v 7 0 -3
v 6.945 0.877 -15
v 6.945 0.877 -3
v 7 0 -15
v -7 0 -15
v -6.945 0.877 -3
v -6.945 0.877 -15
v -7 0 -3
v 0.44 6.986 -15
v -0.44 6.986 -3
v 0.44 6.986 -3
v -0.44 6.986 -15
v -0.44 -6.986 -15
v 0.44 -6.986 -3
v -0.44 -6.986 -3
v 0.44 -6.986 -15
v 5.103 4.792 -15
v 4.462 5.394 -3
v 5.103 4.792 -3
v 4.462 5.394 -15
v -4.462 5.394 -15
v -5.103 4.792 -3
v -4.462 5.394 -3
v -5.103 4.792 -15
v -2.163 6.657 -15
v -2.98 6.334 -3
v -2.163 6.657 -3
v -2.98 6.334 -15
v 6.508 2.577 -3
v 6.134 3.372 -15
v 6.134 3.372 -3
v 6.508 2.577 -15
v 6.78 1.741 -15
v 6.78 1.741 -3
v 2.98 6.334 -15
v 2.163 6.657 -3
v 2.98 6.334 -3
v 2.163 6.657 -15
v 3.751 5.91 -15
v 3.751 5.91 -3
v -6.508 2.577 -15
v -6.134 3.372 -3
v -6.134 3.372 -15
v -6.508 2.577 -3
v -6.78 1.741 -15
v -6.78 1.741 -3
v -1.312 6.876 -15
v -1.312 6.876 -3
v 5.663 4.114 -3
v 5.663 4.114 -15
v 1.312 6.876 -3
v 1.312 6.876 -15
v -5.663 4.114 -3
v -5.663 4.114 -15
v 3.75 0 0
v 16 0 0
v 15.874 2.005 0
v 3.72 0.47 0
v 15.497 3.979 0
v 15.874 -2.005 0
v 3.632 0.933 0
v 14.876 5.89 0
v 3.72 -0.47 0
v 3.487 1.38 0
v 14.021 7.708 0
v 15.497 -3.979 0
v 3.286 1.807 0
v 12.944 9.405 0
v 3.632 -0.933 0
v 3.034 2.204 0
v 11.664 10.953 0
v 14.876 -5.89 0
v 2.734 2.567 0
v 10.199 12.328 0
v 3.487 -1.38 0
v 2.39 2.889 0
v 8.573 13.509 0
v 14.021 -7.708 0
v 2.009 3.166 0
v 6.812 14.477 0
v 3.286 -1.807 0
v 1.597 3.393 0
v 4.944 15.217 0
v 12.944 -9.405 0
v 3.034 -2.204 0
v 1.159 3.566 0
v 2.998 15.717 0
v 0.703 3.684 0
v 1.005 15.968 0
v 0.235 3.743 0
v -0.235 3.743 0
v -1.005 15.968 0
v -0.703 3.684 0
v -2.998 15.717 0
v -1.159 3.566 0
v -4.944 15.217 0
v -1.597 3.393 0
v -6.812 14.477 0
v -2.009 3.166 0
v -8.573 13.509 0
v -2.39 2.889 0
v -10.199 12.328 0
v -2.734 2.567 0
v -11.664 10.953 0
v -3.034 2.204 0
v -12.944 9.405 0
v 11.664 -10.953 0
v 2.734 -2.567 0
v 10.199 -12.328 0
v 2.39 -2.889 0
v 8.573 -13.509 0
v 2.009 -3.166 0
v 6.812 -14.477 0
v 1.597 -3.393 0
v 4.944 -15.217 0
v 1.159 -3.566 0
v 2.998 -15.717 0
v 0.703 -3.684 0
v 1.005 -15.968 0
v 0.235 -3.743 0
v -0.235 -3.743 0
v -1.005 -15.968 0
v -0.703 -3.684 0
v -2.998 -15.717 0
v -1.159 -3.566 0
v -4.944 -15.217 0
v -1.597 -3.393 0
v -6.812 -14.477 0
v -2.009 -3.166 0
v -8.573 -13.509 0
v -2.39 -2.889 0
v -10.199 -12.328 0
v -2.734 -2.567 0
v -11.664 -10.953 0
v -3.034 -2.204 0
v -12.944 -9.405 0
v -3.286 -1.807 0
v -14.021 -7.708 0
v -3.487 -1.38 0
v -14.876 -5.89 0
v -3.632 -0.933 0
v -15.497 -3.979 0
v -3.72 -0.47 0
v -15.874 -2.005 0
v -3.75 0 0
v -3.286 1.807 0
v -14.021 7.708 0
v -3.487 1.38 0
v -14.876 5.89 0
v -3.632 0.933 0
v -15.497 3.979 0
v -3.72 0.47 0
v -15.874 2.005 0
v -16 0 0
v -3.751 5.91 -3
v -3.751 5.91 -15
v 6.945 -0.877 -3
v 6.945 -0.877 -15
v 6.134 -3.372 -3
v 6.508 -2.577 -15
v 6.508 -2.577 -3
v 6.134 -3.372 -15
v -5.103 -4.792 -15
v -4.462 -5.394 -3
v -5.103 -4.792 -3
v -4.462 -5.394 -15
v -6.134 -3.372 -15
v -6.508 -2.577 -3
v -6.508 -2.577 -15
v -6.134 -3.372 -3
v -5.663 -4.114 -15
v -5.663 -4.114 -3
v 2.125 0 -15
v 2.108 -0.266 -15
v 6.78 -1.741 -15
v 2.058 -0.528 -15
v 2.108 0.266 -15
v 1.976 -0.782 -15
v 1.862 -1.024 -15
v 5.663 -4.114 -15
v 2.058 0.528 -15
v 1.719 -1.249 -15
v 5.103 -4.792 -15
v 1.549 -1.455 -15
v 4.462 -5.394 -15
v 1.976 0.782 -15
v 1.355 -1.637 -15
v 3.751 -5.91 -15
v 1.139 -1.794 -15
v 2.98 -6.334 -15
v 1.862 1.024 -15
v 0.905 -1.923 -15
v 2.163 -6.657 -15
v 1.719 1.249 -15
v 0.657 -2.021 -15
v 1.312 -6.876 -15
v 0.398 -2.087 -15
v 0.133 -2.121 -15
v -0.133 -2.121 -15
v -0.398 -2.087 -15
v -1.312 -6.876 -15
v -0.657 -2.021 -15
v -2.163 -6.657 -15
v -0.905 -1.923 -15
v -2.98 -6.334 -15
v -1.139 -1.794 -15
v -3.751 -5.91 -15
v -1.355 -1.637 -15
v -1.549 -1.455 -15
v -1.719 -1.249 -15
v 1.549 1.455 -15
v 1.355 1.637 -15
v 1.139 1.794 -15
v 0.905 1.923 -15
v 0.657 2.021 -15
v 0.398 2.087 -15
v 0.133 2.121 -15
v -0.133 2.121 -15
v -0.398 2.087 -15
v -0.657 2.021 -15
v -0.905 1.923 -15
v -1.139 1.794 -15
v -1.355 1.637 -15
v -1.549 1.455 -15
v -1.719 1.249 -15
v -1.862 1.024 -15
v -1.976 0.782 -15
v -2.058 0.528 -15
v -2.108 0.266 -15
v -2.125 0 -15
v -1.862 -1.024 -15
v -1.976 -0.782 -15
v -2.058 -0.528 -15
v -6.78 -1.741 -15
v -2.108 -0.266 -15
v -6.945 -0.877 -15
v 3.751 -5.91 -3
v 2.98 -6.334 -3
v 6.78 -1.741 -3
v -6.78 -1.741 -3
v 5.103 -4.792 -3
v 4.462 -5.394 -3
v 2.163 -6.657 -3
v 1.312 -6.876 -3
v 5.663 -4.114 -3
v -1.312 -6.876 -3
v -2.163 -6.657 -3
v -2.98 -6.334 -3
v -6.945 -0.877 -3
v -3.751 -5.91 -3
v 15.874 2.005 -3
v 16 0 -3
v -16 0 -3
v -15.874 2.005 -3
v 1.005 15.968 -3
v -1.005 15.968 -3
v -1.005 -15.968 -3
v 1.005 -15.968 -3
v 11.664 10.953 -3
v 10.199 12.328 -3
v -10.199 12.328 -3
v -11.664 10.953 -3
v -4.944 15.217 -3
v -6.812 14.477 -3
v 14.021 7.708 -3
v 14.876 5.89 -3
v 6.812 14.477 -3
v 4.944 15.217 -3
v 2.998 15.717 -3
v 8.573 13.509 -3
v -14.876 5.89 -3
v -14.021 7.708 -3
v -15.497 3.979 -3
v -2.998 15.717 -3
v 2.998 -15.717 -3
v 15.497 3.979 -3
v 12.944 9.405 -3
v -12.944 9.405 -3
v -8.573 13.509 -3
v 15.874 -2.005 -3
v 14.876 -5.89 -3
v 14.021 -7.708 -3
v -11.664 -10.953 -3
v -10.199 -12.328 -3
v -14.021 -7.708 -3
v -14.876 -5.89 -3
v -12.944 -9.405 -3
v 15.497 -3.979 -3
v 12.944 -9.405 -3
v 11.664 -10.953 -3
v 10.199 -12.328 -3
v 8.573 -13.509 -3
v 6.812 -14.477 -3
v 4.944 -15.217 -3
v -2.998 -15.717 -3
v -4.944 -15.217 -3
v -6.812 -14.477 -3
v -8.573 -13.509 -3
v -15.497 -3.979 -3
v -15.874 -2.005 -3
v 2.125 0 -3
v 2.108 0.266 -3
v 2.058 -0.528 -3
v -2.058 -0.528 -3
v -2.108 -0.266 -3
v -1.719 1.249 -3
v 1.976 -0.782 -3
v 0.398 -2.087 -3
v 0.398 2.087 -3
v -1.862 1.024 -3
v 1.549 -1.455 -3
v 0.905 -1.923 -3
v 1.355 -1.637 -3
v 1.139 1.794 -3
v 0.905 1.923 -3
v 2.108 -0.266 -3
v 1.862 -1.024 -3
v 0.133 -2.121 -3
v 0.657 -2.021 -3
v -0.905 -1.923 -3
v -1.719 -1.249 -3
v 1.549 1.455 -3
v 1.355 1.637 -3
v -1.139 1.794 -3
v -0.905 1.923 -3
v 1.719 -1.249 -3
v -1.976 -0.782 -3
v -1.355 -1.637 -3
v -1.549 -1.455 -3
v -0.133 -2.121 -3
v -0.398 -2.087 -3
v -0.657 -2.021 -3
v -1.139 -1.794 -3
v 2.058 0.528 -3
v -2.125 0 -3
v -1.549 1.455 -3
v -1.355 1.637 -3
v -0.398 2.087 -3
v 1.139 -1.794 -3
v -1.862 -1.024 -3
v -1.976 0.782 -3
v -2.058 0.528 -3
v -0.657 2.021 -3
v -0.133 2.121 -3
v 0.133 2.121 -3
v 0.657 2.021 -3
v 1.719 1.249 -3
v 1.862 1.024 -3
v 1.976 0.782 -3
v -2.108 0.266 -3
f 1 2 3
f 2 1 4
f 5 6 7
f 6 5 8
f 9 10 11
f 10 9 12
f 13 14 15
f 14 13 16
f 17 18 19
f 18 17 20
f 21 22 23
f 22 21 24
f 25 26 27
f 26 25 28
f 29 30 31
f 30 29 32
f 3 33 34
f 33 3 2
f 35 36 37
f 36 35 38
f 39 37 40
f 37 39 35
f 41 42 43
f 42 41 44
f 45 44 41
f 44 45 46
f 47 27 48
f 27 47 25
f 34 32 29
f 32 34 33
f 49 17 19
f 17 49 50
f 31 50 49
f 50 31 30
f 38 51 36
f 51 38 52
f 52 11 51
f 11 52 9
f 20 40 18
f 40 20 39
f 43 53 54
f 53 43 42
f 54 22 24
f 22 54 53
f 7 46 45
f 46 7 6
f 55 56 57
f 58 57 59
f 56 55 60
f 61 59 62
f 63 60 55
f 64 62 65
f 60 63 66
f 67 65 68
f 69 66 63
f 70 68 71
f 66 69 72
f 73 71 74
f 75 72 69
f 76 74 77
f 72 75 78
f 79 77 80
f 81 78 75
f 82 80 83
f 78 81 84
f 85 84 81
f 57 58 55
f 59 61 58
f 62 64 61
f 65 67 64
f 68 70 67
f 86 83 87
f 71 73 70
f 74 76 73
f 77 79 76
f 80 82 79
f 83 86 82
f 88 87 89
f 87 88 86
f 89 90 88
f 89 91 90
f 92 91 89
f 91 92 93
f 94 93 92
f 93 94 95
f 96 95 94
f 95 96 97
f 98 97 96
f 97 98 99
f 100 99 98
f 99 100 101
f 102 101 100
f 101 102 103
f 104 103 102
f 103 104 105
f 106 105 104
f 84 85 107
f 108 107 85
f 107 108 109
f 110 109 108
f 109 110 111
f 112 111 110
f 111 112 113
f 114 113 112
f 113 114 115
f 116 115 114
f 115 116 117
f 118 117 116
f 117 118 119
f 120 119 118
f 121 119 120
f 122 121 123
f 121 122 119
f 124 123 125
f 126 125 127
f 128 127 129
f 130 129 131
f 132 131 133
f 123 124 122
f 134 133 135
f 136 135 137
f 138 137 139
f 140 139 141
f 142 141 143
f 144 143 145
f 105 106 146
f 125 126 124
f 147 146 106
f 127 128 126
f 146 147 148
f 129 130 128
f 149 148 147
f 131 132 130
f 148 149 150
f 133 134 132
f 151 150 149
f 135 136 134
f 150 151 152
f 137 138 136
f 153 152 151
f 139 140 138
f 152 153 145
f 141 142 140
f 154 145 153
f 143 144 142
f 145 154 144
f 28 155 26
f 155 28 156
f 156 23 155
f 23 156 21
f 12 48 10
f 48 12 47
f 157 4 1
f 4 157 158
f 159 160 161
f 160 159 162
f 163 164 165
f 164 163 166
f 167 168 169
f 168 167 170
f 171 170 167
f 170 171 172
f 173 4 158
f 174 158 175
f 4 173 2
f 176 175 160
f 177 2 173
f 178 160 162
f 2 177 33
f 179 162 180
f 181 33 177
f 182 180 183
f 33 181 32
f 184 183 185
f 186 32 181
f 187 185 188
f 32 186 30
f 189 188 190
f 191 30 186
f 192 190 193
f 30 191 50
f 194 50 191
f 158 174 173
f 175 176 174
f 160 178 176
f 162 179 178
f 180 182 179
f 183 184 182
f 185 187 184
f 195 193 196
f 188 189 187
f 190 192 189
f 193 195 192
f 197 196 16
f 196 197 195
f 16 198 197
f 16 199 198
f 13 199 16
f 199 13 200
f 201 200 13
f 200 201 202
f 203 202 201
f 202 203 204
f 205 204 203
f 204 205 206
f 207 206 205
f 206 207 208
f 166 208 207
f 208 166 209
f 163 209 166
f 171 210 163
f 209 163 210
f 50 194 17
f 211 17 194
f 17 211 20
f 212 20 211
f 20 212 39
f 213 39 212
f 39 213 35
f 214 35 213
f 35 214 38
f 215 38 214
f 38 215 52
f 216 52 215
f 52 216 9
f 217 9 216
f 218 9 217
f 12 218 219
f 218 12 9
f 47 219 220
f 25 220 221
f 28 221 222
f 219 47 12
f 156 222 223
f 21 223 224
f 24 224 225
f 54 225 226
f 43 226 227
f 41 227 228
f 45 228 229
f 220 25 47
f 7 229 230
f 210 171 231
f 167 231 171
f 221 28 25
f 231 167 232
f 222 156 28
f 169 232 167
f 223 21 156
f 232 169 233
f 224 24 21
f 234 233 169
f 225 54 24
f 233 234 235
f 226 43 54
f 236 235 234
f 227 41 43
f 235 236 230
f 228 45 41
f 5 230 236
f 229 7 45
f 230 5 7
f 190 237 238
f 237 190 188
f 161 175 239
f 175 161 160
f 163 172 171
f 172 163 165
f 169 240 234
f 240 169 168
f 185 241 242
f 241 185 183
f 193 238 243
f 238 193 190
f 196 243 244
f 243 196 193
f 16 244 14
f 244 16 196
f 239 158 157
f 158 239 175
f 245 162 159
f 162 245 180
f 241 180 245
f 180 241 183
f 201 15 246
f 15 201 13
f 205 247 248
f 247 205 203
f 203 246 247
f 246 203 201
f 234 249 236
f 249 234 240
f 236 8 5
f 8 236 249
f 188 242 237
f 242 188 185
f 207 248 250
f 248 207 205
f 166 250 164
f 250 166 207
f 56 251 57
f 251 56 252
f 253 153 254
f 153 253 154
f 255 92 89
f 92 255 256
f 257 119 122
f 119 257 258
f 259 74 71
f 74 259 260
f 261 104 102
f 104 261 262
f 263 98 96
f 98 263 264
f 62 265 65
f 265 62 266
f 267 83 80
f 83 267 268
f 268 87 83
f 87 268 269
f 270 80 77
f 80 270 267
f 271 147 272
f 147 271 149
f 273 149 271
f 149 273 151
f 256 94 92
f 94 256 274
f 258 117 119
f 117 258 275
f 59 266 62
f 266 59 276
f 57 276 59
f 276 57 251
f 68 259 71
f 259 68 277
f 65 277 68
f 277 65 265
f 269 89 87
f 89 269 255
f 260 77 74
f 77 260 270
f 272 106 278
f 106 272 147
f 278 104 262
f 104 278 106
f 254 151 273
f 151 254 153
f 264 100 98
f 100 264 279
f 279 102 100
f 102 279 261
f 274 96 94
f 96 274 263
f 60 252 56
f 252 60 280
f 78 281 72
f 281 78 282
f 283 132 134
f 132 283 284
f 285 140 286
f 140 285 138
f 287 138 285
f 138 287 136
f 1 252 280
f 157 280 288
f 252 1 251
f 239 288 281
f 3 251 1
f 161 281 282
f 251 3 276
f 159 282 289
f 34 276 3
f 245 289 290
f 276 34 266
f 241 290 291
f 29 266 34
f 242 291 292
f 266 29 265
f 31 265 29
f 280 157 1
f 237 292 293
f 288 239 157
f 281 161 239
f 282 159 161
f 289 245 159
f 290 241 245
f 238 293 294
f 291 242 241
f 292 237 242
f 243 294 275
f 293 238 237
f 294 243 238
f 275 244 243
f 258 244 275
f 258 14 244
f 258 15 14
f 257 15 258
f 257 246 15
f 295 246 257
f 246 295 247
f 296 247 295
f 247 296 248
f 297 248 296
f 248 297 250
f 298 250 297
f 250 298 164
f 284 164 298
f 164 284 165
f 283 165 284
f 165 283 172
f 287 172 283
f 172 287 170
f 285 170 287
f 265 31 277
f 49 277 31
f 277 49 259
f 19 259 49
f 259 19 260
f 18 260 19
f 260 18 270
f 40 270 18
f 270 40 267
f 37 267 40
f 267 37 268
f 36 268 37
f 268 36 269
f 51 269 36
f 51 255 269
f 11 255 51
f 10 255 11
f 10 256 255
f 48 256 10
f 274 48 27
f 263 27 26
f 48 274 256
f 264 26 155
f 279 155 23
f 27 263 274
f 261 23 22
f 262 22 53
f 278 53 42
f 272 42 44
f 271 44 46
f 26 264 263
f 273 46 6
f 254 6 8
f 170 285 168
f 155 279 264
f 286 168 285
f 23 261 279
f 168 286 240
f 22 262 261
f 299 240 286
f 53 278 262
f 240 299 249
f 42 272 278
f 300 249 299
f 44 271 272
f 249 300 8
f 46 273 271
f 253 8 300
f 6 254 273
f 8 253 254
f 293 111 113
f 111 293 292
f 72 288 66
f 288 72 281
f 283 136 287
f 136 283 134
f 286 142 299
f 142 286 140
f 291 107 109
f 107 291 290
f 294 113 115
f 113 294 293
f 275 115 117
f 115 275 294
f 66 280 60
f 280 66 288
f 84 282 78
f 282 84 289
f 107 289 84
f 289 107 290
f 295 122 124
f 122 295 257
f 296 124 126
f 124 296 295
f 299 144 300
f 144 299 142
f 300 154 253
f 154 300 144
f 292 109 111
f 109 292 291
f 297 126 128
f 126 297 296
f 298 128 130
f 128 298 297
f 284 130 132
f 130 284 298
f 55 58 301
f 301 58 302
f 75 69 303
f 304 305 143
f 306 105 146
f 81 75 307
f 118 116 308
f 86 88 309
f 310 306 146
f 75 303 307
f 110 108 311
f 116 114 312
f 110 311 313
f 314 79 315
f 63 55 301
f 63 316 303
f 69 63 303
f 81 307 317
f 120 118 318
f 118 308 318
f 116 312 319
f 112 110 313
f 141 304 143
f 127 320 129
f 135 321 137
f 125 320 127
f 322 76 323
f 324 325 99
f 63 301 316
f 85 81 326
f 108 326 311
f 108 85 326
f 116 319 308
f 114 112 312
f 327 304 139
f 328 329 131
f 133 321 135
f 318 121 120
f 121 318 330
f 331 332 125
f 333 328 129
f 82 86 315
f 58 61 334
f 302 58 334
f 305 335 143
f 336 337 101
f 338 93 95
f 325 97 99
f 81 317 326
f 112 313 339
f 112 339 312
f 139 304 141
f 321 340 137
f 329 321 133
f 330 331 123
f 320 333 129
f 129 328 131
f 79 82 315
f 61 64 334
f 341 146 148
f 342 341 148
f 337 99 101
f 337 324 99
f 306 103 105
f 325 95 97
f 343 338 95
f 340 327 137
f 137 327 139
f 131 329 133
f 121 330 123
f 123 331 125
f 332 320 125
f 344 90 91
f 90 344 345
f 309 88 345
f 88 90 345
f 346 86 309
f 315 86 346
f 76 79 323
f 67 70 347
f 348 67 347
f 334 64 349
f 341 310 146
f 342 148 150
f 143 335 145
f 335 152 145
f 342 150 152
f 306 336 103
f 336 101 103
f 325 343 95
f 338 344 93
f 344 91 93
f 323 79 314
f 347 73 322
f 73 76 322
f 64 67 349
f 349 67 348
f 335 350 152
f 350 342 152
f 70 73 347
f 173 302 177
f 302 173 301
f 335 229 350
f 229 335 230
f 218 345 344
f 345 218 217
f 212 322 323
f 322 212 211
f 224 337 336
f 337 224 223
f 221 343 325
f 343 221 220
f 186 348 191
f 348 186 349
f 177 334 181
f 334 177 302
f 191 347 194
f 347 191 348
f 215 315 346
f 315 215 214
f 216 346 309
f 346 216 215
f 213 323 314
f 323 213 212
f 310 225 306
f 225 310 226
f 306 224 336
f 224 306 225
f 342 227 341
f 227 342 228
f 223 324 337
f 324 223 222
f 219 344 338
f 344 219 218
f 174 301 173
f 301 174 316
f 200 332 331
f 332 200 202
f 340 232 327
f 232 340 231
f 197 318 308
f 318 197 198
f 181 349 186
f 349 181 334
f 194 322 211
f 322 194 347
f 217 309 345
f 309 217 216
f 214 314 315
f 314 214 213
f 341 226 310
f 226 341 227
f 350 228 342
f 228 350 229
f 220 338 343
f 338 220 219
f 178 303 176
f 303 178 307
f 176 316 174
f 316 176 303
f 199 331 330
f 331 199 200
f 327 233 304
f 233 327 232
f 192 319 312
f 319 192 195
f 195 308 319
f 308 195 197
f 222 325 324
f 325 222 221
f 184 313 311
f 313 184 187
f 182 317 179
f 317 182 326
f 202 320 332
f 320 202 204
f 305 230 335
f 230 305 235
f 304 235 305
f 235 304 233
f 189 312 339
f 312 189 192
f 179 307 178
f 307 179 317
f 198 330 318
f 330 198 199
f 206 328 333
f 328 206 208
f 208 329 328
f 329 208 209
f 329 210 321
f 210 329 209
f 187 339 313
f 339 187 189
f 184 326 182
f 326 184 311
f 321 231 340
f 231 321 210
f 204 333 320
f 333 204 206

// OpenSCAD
$fn = 50;


difference() {
	union() {
		translate(v = [0, 0, -15.0000000000]) {
			cylinder(h = 15, r = 7.0000000000);
		}
		translate(v = [0, 0, -3.0000000000]) {
			cylinder(h = 3, r = 16.0000000000);
		}
	}
	union() {
		translate(v = [0, 0, 0]) {
			rotate(a = [0, 0, 0]) {
				difference() {
					union() {
						#translate(v = [0, 0, -15.0000000000]) {
							cylinder(h = 15, r = 2.0000000000);
						}
						#translate(v = [0, 0, -3]) {
							cylinder(h = 3, r = 7.0000000000, r1 = 2.1250000000, r2 = 3.7500000000);
						}
						#translate(v = [0, 0, -15.0000000000]) {
							cylinder(h = 15, r = 2.1250000000);
						}
						#translate(v = [0, 0, -15.0000000000]) {
							cylinder(h = 15, r = 2.0000000000);
						}
					}
					union();
				}
			}
		}
	}
}
